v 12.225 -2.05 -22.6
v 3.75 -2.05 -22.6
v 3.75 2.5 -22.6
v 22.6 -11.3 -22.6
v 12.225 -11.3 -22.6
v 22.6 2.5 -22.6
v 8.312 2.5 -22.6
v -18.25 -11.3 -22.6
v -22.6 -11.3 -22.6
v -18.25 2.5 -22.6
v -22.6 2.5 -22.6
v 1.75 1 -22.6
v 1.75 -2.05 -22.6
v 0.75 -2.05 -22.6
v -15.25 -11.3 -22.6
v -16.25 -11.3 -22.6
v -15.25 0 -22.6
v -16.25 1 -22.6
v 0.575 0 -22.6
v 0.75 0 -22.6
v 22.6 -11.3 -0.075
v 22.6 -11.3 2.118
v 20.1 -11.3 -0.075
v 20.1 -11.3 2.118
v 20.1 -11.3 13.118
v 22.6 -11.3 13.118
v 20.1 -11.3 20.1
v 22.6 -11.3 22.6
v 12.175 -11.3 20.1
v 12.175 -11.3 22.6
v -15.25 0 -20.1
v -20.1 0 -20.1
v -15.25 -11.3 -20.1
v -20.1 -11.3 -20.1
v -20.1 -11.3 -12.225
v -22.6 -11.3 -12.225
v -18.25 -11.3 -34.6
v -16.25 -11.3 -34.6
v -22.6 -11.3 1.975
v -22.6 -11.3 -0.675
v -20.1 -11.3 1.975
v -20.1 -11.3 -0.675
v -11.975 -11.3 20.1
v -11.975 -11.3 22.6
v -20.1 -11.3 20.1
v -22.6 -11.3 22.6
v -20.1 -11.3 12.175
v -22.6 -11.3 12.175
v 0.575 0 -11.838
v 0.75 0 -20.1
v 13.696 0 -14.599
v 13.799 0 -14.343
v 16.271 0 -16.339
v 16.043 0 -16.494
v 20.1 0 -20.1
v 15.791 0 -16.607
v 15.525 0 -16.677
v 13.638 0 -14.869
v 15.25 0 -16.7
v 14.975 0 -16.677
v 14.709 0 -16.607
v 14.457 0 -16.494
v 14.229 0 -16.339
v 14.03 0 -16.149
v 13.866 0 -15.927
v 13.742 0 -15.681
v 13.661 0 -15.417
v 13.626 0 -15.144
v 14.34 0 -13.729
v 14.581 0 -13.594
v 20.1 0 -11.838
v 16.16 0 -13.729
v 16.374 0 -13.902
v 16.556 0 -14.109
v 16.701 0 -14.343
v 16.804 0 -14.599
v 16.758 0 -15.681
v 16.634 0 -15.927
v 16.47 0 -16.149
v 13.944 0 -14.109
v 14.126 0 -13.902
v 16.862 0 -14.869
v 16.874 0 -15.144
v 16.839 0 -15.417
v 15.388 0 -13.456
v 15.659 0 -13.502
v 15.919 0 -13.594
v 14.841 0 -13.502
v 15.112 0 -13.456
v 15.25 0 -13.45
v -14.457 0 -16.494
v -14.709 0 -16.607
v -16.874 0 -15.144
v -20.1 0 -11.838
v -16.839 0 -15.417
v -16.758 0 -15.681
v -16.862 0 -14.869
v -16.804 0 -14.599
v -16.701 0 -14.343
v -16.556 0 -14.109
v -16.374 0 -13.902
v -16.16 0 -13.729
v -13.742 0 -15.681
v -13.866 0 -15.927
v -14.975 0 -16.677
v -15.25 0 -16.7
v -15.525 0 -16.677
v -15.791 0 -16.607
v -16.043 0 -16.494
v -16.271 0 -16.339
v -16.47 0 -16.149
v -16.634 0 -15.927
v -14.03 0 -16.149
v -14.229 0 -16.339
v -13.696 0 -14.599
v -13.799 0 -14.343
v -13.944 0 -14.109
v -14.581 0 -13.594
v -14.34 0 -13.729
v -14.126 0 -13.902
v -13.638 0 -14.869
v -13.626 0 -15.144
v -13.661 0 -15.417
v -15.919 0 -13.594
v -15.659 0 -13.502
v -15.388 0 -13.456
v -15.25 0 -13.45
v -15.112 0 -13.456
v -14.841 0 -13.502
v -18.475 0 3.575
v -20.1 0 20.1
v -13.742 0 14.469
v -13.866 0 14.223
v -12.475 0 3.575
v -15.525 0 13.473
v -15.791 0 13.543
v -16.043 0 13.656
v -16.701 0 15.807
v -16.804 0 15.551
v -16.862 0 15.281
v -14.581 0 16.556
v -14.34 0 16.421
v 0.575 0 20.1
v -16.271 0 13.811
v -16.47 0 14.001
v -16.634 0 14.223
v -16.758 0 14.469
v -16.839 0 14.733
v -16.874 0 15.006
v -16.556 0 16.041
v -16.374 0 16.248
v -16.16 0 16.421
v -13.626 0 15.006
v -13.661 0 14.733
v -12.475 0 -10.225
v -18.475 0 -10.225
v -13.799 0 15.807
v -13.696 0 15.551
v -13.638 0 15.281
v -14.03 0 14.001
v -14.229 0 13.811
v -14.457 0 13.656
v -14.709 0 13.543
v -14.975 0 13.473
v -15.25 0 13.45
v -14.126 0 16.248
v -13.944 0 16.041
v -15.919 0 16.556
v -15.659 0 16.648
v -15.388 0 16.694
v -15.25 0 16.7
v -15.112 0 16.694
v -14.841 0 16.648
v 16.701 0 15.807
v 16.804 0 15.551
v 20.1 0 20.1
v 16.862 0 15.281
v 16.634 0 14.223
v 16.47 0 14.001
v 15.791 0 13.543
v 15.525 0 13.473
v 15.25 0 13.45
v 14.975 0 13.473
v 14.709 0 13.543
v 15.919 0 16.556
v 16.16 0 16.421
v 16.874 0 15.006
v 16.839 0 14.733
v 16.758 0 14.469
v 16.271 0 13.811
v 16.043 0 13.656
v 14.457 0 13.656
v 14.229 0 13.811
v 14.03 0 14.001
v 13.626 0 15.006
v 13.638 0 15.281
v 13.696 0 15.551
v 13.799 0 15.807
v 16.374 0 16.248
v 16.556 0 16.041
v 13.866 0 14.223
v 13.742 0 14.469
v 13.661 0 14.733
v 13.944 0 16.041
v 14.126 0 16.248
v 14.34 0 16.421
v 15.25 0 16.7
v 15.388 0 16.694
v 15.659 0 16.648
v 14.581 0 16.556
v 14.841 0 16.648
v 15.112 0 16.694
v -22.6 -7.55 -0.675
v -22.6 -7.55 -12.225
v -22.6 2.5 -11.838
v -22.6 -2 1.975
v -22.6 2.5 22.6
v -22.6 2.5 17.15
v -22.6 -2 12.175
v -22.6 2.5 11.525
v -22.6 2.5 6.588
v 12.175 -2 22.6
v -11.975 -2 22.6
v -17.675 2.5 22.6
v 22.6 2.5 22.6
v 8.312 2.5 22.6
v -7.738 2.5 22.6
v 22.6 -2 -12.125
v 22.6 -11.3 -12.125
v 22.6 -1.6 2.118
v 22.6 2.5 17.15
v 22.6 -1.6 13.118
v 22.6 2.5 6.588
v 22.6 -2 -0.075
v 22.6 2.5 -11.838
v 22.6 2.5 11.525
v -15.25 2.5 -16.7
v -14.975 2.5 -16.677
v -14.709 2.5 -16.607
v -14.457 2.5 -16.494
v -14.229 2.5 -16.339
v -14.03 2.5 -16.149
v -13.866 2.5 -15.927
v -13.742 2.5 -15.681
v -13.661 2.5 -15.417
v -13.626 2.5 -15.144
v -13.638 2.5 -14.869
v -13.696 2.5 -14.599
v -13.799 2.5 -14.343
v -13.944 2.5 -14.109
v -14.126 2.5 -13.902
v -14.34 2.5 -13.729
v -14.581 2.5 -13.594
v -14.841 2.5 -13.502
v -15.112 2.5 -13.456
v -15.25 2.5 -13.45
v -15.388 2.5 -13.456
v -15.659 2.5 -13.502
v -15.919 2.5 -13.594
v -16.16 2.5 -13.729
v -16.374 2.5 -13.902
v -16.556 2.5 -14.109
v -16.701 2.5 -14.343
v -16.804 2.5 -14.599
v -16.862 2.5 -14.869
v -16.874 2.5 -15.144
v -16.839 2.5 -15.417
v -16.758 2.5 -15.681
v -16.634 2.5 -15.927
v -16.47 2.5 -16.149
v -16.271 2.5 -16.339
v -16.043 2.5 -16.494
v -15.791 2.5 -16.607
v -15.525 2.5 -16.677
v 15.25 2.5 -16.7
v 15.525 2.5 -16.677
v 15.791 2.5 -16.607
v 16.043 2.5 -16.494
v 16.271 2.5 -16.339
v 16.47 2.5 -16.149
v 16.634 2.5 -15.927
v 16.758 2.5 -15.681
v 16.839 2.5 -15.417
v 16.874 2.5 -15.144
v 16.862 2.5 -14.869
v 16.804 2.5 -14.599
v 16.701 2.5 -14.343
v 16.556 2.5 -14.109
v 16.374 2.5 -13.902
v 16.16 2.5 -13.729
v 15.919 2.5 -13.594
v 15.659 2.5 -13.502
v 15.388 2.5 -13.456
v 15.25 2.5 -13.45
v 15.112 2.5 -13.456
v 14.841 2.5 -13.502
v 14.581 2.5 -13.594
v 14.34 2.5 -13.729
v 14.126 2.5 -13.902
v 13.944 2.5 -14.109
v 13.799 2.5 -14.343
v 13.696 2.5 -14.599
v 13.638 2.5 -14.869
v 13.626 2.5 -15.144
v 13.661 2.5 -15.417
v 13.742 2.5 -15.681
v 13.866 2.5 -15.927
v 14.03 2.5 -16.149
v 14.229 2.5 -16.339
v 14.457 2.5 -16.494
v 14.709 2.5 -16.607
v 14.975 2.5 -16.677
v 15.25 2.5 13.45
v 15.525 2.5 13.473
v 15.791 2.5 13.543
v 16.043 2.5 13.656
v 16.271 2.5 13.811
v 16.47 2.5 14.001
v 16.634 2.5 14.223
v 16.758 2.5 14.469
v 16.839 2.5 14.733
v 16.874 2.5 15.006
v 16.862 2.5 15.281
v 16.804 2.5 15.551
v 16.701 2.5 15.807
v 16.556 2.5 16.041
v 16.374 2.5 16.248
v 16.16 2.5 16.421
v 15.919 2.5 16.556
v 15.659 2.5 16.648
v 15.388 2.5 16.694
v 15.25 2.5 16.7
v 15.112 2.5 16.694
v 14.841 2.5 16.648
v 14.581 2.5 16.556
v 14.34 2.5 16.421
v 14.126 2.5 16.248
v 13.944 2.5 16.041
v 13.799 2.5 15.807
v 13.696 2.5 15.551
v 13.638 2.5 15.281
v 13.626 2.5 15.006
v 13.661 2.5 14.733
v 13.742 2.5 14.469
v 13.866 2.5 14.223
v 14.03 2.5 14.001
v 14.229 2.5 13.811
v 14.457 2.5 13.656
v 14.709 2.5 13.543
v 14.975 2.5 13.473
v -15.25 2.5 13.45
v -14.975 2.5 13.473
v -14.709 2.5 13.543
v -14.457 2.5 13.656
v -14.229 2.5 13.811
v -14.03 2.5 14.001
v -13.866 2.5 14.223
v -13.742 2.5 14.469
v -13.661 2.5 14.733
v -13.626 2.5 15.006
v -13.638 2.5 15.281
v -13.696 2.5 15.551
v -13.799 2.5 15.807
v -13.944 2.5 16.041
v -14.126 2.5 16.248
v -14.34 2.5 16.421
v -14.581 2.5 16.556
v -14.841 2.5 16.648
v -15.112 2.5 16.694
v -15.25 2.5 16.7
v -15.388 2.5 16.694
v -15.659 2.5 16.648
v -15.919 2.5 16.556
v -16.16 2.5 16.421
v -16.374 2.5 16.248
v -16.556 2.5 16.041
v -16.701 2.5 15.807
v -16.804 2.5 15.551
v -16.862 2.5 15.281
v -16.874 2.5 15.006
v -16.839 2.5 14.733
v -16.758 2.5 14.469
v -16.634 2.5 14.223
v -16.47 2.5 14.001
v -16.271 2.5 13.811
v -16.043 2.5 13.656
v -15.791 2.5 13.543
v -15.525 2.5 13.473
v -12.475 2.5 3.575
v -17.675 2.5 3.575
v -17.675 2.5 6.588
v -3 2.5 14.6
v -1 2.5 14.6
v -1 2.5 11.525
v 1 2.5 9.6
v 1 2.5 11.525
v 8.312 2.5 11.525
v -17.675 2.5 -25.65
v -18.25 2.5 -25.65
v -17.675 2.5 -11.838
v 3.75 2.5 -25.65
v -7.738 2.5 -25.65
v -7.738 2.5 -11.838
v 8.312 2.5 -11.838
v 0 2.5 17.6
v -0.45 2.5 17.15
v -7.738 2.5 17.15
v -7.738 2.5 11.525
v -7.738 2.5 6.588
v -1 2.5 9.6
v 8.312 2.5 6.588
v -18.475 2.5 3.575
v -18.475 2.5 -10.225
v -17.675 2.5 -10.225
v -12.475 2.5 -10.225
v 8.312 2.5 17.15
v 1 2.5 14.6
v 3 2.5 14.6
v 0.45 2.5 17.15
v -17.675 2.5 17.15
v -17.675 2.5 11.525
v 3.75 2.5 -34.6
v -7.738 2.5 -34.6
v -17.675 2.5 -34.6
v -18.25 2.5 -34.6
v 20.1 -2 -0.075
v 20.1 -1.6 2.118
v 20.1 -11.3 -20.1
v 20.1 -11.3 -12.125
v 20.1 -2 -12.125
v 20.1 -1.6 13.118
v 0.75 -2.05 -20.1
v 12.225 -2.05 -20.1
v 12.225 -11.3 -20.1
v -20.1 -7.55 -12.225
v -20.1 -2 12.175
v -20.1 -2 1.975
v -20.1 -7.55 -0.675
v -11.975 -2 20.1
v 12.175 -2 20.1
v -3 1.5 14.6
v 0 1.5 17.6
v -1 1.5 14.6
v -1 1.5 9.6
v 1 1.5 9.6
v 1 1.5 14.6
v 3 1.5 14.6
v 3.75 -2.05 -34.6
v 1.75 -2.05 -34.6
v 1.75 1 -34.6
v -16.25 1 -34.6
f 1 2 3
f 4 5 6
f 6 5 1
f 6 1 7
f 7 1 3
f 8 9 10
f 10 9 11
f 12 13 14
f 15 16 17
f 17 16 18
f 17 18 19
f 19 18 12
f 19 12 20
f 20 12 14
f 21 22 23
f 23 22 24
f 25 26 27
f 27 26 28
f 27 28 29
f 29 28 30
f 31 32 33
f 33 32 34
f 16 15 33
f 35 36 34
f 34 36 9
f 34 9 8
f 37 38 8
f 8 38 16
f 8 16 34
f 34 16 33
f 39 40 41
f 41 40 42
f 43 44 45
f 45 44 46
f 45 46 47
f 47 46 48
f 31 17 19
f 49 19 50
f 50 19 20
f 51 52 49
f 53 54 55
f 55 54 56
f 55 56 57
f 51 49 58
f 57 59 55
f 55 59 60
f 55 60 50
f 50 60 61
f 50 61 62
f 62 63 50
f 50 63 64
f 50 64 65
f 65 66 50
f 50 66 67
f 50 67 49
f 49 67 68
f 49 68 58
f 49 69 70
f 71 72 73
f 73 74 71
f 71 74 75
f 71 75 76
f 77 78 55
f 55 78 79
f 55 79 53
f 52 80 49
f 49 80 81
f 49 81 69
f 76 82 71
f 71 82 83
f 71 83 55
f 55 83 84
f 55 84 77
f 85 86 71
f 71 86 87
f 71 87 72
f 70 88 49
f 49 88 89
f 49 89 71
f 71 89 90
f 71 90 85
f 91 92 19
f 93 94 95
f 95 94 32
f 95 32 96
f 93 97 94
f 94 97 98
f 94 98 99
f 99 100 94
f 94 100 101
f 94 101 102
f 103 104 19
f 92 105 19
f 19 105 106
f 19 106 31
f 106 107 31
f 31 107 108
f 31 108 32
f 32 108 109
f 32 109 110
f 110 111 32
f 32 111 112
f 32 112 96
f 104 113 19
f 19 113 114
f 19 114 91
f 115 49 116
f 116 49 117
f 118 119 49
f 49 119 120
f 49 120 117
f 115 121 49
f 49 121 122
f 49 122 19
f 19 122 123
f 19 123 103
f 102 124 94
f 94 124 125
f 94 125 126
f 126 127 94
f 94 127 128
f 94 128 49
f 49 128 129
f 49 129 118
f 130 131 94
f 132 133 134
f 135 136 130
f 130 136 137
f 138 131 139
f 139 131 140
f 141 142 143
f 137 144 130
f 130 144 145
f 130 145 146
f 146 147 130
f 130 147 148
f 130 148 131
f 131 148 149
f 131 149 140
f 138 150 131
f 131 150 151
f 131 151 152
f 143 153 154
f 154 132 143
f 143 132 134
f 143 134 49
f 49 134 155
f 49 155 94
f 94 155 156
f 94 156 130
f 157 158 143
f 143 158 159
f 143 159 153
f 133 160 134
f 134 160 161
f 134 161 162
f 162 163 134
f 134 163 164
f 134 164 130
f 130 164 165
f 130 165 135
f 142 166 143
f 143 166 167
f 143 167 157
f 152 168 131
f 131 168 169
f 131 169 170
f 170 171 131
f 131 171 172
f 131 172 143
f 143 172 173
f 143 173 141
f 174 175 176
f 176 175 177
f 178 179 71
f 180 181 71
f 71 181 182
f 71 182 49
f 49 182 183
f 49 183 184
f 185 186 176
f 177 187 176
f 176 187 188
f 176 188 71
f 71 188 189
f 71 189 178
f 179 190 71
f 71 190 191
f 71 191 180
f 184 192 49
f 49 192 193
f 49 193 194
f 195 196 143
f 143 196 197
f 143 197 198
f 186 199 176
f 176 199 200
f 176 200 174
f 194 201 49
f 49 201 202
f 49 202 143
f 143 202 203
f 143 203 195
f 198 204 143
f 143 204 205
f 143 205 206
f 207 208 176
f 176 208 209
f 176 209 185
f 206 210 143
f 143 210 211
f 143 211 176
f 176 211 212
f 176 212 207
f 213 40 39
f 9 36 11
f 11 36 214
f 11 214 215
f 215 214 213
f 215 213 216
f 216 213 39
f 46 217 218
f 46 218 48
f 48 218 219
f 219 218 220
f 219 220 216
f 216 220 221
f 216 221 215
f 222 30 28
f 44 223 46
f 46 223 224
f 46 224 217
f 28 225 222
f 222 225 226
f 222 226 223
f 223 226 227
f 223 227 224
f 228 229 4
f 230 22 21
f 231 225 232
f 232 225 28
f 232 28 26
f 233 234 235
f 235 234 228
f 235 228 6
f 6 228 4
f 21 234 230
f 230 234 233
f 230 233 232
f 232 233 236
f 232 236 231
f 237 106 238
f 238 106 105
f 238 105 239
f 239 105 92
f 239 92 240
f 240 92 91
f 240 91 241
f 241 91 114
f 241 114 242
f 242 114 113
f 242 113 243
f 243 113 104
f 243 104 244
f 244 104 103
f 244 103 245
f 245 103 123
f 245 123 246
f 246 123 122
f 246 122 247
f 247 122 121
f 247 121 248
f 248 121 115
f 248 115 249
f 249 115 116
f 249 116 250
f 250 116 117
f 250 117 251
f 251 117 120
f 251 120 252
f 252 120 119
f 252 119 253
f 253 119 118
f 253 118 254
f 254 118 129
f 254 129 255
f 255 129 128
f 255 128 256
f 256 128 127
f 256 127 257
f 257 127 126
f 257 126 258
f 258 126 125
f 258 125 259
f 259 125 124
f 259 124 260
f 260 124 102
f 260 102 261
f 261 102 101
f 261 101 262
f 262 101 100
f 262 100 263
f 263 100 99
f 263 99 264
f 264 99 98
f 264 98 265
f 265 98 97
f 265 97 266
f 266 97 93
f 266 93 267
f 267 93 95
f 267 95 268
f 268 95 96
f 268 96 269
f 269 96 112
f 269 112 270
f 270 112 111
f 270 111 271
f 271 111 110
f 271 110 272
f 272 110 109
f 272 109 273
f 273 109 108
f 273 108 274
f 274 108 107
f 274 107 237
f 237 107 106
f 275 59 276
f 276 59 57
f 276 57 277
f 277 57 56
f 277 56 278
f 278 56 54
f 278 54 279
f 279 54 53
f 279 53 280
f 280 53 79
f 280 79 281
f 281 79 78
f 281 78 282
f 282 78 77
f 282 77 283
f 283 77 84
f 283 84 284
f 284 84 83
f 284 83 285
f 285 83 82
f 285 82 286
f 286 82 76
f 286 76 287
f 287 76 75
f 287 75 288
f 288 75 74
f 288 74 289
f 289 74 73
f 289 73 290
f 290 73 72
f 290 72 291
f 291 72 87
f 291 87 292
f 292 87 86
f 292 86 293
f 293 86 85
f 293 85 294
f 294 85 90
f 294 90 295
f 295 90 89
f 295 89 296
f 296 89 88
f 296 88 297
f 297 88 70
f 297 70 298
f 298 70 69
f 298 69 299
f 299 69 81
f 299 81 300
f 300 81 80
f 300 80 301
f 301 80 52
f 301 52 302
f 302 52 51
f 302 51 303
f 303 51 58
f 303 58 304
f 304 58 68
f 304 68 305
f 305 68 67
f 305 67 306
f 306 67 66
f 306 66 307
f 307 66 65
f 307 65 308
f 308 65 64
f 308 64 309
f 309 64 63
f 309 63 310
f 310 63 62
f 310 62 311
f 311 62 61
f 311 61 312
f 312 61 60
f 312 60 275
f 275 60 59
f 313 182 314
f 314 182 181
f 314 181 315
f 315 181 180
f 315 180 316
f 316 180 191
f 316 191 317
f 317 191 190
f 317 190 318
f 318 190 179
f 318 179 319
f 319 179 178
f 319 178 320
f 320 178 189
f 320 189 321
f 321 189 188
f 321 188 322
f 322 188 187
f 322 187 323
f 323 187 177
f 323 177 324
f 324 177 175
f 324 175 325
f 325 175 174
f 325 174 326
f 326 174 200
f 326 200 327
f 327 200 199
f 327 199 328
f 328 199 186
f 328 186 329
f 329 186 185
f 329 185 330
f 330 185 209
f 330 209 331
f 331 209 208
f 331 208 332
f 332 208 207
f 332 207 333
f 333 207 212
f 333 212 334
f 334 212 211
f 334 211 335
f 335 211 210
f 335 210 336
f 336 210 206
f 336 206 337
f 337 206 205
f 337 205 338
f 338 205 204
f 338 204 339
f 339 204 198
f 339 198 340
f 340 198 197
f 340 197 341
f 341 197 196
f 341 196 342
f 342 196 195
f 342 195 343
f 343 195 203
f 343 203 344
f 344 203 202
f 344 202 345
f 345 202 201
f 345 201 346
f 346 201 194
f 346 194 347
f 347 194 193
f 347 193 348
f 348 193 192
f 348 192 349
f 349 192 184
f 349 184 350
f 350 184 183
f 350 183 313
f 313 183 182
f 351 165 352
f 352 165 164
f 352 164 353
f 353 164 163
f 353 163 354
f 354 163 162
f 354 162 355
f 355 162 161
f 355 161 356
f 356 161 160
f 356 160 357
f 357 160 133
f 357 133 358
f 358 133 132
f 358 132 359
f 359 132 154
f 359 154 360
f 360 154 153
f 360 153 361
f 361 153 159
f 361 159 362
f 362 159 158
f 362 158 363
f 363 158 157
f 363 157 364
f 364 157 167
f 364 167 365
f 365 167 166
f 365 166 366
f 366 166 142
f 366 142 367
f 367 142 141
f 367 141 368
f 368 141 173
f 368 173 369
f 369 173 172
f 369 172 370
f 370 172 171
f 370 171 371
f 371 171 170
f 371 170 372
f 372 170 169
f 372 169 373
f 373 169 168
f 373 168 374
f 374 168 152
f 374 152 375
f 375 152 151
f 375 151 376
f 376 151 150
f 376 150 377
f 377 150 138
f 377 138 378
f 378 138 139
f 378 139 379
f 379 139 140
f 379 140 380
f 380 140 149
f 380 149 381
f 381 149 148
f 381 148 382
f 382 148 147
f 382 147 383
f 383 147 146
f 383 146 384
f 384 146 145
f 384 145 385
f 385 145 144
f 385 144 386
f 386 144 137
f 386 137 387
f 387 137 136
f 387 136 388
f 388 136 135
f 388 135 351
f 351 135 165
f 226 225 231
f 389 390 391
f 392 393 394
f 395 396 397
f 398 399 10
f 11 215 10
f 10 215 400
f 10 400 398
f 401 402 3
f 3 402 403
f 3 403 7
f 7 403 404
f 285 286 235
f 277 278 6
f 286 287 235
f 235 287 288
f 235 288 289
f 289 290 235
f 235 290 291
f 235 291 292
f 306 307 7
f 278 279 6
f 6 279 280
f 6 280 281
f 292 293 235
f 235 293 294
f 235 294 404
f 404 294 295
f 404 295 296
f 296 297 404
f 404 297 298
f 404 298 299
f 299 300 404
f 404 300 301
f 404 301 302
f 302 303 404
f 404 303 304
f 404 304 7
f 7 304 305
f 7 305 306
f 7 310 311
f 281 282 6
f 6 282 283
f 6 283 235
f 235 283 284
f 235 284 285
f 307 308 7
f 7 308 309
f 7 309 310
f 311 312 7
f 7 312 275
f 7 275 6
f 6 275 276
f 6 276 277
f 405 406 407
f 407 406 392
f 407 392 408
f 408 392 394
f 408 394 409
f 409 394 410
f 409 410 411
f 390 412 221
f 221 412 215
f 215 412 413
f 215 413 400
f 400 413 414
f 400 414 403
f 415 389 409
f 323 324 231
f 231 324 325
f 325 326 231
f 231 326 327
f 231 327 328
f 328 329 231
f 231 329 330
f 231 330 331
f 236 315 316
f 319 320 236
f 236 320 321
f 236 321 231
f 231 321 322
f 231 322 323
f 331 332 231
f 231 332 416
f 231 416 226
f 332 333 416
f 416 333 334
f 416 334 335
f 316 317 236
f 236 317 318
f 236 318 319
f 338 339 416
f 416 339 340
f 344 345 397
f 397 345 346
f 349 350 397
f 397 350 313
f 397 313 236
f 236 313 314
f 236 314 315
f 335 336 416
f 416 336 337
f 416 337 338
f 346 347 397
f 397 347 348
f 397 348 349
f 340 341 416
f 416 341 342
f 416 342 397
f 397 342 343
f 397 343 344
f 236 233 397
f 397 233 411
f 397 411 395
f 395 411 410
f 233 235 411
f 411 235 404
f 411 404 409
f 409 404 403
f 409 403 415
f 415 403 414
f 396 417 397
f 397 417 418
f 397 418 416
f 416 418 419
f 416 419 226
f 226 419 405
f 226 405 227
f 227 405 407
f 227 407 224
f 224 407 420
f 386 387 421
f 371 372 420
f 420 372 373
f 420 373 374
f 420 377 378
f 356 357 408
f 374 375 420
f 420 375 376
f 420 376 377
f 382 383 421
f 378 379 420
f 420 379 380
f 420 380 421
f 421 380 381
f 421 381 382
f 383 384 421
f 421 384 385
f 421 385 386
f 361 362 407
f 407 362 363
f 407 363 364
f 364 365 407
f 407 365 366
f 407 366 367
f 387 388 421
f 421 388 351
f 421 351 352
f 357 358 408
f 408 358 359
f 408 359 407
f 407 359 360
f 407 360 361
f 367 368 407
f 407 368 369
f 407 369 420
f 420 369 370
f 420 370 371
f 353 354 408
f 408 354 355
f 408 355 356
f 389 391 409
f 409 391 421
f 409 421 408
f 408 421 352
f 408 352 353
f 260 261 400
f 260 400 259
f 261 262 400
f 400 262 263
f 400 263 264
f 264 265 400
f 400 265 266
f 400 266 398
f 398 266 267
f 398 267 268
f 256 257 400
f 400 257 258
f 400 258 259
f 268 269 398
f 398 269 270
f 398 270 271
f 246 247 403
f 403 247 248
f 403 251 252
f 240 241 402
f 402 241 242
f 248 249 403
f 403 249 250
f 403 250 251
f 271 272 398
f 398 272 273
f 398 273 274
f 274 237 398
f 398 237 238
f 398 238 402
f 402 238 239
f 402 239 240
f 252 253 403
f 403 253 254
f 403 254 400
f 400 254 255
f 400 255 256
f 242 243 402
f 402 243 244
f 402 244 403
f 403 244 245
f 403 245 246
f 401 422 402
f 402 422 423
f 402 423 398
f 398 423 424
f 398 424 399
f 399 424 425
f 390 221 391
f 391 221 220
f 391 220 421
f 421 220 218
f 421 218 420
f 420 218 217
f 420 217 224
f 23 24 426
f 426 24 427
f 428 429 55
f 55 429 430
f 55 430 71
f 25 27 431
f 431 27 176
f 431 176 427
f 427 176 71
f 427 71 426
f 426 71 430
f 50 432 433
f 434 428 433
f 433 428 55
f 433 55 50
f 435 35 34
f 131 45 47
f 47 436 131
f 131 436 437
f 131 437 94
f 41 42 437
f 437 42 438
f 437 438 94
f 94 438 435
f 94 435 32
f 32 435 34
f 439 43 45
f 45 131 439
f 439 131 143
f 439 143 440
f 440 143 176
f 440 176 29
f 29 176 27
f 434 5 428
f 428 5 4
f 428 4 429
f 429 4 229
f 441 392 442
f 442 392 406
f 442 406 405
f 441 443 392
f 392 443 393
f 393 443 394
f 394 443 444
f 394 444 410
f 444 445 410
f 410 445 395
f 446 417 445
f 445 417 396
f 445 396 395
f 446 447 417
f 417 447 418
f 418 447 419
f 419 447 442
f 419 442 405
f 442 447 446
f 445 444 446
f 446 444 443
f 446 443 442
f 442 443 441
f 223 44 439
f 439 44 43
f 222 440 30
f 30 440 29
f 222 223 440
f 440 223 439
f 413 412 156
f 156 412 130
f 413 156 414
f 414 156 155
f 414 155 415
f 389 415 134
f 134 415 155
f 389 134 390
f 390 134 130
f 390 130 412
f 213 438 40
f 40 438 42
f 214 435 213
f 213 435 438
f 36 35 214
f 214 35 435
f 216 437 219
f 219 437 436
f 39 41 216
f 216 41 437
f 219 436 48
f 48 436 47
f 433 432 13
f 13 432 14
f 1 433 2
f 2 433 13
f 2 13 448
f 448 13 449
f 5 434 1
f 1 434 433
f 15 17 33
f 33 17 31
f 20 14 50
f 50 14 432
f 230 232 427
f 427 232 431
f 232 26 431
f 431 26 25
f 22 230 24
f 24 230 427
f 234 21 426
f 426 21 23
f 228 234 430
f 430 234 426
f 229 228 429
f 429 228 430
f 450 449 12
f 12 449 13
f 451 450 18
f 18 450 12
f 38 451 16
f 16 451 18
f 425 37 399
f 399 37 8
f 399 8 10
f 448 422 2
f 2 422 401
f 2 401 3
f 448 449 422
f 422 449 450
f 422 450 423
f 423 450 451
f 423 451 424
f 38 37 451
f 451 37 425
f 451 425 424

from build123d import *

# Parameters (mm, degrees)
SKETCH2_W                 = 45.2
SKETCH2_H                 = 45.2
SKETCH2_W_2               = 40.2
SKETCH2_H_2               = 40.2
SKETCH2_R                 = 1.625
TOP_DEPTH                 = 2.5
SKETCH2_3_W               = 45.2
SKETCH2_3_H               = 45.2
SKETCH2_3_W_2             = 40.2
SKETCH2_3_H_2             = 40.2
SIDE_WALLS_DEPTH          = 11.3
DIRECTION_INDICATOR_DEPTH = 1
FRONT_PORTS_REACH         = 53.783
WIFI_PORT_REACH           = 36.813
SKETCH5_W                 = 6
SKETCH5_H                 = 13.8
RIGHT_PORTS_REACH         = 53.783
SKETCH6_W                 = 10.2
SKETCH6_H                 = 9.3
SKETCH6_W_2               = 11.55
SKETCH6_H_2               = 3.75
REAR_PORTS_REACH          = 53.783
SKETCH7_W                 = 16
SKETCH7_H                 = 11.3
SKETCH7_W_2               = 11.475
SKETCH7_H_2               = 9.35
LEFT_PORTS_REACH          = 53.783
SKETCH8_W                 = 12.05
SKETCH8_H                 = 9.3
BOSS_EXTRUDE3_DEPTH       = 12


with BuildPart() as part:
    # Sketch2 → Top (new body)
    # profile 1 of 2: a face of its own
    with BuildSketch(Plane(origin=(0, 0, 0), x_dir=(1, 0, 0), z_dir=(0, 1, 0))):
        Rectangle(SKETCH2_W, SKETCH2_H)
        Rectangle(SKETCH2_W_2, SKETCH2_H_2, mode=Mode.SUBTRACT)
    # profile 2 of 2: a face of its own
    with BuildSketch(Plane(origin=(0, 0, 0), x_dir=(1, 0, 0), z_dir=(0, 1, 0))):
        Rectangle(SKETCH2_W_2, SKETCH2_H_2)
        with Locations(Location((15.25, -15.075, 0), (0, 0, 270))):
            Circle(SKETCH2_R, mode=Mode.SUBTRACT)
        with Locations(Location((15.25, 15.075, 0), (0, 0, 270))):
            Circle(SKETCH2_R, mode=Mode.SUBTRACT)
        with Locations(Location((-15.25, 15.075, 0), (0, 0, 270))):
            Circle(SKETCH2_R, mode=Mode.SUBTRACT)
        with Locations(Location((-15.25, -15.075, 0), (0, 0, 270))):
            Circle(SKETCH2_R, mode=Mode.SUBTRACT)
    extrude(amount=TOP_DEPTH)

    # Sketch2<3> → Side Walls (add)
    with BuildSketch(Plane(origin=(0, 0, 0), x_dir=(1, 0, 0), z_dir=(0, 1, 0))):
        Rectangle(SKETCH2_3_W, SKETCH2_3_H)
        Rectangle(SKETCH2_3_W_2, SKETCH2_3_H_2, mode=Mode.SUBTRACT)
    extrude(amount=-SIDE_WALLS_DEPTH)

    # Sketch3 → Direction Indicator (cut)
    with BuildSketch(Plane(origin=(0, 2.5, 0), x_dir=(1, 0, 0), z_dir=(0, 1, 0))):
        Polygon((0, -17.6), (3, -14.6), (1, -14.6), (1, -9.6), (-1, -9.6), (-1, -14.6), (-3, -14.6), align=None)
    extrude(amount=-DIRECTION_INDICATOR_DEPTH, mode=Mode.SUBTRACT)

    # Sketch4 → Front Ports (cut, up to next)
    with BuildSketch(Plane.XY.offset(22.6), mode=Mode.PRIVATE) as front_ports_sk1:
        Polygon((-11.975, -2), (-0.375, -2), (0.575, -2), (12.175, -2), (12.175, -12.246111299), (0.575, -12.246111299), (-0.375, -12.246111299), (-0.375, -11.3), (-11.975, -11.3), (-11.975, -12.6), align=None)
    front_ports_tool1 = extrude(front_ports_sk1.sketch, amount=-FRONT_PORTS_REACH, mode=Mode.PRIVATE) & part.part
    add(front_ports_tool1.solids().sort_by_distance((0.391233, -6.907242, 22.6))[0], mode=Mode.SUBTRACT)

    # Sketch5 → Wifi Port (cut, up to next)
    with BuildSketch(Plane(origin=(0, 2.5, 0), x_dir=(1, 0, 0), z_dir=(0, 1, 0)), mode=Mode.PRIVATE) as wifi_port_sk1:
        with Locations((-15.475, 3.325)):
            Rectangle(SKETCH5_W, SKETCH5_H)
    wifi_port_tool1 = extrude(wifi_port_sk1.sketch, amount=-WIFI_PORT_REACH, mode=Mode.PRIVATE) & part.part
    add(wifi_port_tool1.solids().sort_by_distance((-15.475, 2.5, -3.325))[0], mode=Mode.SUBTRACT)

    # Sketch6 → Right Ports (cut, up to next)
    with BuildSketch(Plane.ZY.offset(22.6), mode=Mode.PRIVATE) as right_ports_sk1:
        with Locations((7.075, -6.65)):
            Rectangle(SKETCH6_W, SKETCH6_H)
    right_ports_tool1 = extrude(right_ports_sk1.sketch, amount=-RIGHT_PORTS_REACH, mode=Mode.PRIVATE) & part.part
    # Sketch6 → Right Ports (cut, up to next)
    with BuildSketch(Plane.ZY.offset(22.6), mode=Mode.PRIVATE) as right_ports_sk2:
        with Locations((-6.45, -9.425)):
            Rectangle(SKETCH6_W_2, SKETCH6_H_2)
    right_ports_tool2 = extrude(right_ports_sk2.sketch, amount=-RIGHT_PORTS_REACH, mode=Mode.PRIVATE) & part.part
    add(right_ports_tool1.solids().sort_by_distance((-22.6, -6.65, 7.075))[0], mode=Mode.SUBTRACT)
    add(right_ports_tool2.solids().sort_by_distance((-22.6, -9.425, -6.45))[0], mode=Mode.SUBTRACT)

    # Sketch7 → Rear Ports (cut, up to next)
    with BuildSketch(Plane(origin=(0, 0, -22.6), x_dir=(-1, 0, 0), z_dir=(0, 0, -1)), mode=Mode.PRIVATE) as rear_ports_sk1:
        with Locations((7.25, -5.65)):
            Rectangle(SKETCH7_W, SKETCH7_H)
    rear_ports_tool1 = extrude(rear_ports_sk1.sketch, amount=-REAR_PORTS_REACH, mode=Mode.PRIVATE) & part.part
    # Sketch7 → Rear Ports (cut, up to next)
    with BuildSketch(Plane(origin=(0, 0, -22.6), x_dir=(-1, 0, 0), z_dir=(0, 0, -1)), mode=Mode.PRIVATE) as rear_ports_sk2:
        with Locations((-6.4875, -6.725)):
            Rectangle(SKETCH7_W_2, SKETCH7_H_2)
    rear_ports_tool2 = extrude(rear_ports_sk2.sketch, amount=-REAR_PORTS_REACH, mode=Mode.PRIVATE) & part.part
    add(rear_ports_tool1.solids().sort_by_distance((-7.25, -5.65, -22.6))[0], mode=Mode.SUBTRACT)
    add(rear_ports_tool2.solids().sort_by_distance((6.4875, -6.725, -22.6))[0], mode=Mode.SUBTRACT)

    # Sketch8 → Left Ports (cut, up to next)
    with BuildSketch(Plane(origin=(22.6, 0, 0), x_dir=(0, 0, -1), z_dir=(1, 0, 0)), mode=Mode.PRIVATE) as left_ports_sk1:
        with Locations((6.1, -6.65)):
            Rectangle(SKETCH8_W, SKETCH8_H)
    left_ports_tool1 = extrude(left_ports_sk1.sketch, amount=-LEFT_PORTS_REACH, mode=Mode.PRIVATE) & part.part
    # Sketch8 → Left Ports (cut, up to next)
    with BuildSketch(Plane(origin=(22.6, 0, 0), x_dir=(0, 0, -1), z_dir=(1, 0, 0)), mode=Mode.PRIVATE) as left_ports_sk2:
        Polygon((-13.118203812, -9.6), (-13.118203812, -15.896164494), (-2.118203812, -15.896164494), (-2.118203812, -9.6), (-2.118203812, -1.6), (-13.118203812, -1.6), align=None)
    left_ports_tool2 = extrude(left_ports_sk2.sketch, amount=-LEFT_PORTS_REACH, mode=Mode.PRIVATE) & part.part
    add(left_ports_tool1.solids().sort_by_distance((22.6, -6.65, -6.1))[0], mode=Mode.SUBTRACT)
    add(left_ports_tool2.solids().sort_by_distance((22.6, -8.748082, 7.618204))[0], mode=Mode.SUBTRACT)

    # Sketch9 → Boss-Extrude3 (add)
    with BuildSketch(Plane(origin=(0, 0, -22.6), x_dir=(-1, 0, 0), z_dir=(0, 0, -1))):
        Polygon((-3.75, -2.05), (-1.75, -2.05), (-1.75, 1), (16.25, 1), (16.25, -11.3), (18.25, -11.3), (18.25, 2.5), (-3.75, 2.5), align=None)
    extrude(amount=BOSS_EXTRUDE3_DEPTH)


solid = part.part
